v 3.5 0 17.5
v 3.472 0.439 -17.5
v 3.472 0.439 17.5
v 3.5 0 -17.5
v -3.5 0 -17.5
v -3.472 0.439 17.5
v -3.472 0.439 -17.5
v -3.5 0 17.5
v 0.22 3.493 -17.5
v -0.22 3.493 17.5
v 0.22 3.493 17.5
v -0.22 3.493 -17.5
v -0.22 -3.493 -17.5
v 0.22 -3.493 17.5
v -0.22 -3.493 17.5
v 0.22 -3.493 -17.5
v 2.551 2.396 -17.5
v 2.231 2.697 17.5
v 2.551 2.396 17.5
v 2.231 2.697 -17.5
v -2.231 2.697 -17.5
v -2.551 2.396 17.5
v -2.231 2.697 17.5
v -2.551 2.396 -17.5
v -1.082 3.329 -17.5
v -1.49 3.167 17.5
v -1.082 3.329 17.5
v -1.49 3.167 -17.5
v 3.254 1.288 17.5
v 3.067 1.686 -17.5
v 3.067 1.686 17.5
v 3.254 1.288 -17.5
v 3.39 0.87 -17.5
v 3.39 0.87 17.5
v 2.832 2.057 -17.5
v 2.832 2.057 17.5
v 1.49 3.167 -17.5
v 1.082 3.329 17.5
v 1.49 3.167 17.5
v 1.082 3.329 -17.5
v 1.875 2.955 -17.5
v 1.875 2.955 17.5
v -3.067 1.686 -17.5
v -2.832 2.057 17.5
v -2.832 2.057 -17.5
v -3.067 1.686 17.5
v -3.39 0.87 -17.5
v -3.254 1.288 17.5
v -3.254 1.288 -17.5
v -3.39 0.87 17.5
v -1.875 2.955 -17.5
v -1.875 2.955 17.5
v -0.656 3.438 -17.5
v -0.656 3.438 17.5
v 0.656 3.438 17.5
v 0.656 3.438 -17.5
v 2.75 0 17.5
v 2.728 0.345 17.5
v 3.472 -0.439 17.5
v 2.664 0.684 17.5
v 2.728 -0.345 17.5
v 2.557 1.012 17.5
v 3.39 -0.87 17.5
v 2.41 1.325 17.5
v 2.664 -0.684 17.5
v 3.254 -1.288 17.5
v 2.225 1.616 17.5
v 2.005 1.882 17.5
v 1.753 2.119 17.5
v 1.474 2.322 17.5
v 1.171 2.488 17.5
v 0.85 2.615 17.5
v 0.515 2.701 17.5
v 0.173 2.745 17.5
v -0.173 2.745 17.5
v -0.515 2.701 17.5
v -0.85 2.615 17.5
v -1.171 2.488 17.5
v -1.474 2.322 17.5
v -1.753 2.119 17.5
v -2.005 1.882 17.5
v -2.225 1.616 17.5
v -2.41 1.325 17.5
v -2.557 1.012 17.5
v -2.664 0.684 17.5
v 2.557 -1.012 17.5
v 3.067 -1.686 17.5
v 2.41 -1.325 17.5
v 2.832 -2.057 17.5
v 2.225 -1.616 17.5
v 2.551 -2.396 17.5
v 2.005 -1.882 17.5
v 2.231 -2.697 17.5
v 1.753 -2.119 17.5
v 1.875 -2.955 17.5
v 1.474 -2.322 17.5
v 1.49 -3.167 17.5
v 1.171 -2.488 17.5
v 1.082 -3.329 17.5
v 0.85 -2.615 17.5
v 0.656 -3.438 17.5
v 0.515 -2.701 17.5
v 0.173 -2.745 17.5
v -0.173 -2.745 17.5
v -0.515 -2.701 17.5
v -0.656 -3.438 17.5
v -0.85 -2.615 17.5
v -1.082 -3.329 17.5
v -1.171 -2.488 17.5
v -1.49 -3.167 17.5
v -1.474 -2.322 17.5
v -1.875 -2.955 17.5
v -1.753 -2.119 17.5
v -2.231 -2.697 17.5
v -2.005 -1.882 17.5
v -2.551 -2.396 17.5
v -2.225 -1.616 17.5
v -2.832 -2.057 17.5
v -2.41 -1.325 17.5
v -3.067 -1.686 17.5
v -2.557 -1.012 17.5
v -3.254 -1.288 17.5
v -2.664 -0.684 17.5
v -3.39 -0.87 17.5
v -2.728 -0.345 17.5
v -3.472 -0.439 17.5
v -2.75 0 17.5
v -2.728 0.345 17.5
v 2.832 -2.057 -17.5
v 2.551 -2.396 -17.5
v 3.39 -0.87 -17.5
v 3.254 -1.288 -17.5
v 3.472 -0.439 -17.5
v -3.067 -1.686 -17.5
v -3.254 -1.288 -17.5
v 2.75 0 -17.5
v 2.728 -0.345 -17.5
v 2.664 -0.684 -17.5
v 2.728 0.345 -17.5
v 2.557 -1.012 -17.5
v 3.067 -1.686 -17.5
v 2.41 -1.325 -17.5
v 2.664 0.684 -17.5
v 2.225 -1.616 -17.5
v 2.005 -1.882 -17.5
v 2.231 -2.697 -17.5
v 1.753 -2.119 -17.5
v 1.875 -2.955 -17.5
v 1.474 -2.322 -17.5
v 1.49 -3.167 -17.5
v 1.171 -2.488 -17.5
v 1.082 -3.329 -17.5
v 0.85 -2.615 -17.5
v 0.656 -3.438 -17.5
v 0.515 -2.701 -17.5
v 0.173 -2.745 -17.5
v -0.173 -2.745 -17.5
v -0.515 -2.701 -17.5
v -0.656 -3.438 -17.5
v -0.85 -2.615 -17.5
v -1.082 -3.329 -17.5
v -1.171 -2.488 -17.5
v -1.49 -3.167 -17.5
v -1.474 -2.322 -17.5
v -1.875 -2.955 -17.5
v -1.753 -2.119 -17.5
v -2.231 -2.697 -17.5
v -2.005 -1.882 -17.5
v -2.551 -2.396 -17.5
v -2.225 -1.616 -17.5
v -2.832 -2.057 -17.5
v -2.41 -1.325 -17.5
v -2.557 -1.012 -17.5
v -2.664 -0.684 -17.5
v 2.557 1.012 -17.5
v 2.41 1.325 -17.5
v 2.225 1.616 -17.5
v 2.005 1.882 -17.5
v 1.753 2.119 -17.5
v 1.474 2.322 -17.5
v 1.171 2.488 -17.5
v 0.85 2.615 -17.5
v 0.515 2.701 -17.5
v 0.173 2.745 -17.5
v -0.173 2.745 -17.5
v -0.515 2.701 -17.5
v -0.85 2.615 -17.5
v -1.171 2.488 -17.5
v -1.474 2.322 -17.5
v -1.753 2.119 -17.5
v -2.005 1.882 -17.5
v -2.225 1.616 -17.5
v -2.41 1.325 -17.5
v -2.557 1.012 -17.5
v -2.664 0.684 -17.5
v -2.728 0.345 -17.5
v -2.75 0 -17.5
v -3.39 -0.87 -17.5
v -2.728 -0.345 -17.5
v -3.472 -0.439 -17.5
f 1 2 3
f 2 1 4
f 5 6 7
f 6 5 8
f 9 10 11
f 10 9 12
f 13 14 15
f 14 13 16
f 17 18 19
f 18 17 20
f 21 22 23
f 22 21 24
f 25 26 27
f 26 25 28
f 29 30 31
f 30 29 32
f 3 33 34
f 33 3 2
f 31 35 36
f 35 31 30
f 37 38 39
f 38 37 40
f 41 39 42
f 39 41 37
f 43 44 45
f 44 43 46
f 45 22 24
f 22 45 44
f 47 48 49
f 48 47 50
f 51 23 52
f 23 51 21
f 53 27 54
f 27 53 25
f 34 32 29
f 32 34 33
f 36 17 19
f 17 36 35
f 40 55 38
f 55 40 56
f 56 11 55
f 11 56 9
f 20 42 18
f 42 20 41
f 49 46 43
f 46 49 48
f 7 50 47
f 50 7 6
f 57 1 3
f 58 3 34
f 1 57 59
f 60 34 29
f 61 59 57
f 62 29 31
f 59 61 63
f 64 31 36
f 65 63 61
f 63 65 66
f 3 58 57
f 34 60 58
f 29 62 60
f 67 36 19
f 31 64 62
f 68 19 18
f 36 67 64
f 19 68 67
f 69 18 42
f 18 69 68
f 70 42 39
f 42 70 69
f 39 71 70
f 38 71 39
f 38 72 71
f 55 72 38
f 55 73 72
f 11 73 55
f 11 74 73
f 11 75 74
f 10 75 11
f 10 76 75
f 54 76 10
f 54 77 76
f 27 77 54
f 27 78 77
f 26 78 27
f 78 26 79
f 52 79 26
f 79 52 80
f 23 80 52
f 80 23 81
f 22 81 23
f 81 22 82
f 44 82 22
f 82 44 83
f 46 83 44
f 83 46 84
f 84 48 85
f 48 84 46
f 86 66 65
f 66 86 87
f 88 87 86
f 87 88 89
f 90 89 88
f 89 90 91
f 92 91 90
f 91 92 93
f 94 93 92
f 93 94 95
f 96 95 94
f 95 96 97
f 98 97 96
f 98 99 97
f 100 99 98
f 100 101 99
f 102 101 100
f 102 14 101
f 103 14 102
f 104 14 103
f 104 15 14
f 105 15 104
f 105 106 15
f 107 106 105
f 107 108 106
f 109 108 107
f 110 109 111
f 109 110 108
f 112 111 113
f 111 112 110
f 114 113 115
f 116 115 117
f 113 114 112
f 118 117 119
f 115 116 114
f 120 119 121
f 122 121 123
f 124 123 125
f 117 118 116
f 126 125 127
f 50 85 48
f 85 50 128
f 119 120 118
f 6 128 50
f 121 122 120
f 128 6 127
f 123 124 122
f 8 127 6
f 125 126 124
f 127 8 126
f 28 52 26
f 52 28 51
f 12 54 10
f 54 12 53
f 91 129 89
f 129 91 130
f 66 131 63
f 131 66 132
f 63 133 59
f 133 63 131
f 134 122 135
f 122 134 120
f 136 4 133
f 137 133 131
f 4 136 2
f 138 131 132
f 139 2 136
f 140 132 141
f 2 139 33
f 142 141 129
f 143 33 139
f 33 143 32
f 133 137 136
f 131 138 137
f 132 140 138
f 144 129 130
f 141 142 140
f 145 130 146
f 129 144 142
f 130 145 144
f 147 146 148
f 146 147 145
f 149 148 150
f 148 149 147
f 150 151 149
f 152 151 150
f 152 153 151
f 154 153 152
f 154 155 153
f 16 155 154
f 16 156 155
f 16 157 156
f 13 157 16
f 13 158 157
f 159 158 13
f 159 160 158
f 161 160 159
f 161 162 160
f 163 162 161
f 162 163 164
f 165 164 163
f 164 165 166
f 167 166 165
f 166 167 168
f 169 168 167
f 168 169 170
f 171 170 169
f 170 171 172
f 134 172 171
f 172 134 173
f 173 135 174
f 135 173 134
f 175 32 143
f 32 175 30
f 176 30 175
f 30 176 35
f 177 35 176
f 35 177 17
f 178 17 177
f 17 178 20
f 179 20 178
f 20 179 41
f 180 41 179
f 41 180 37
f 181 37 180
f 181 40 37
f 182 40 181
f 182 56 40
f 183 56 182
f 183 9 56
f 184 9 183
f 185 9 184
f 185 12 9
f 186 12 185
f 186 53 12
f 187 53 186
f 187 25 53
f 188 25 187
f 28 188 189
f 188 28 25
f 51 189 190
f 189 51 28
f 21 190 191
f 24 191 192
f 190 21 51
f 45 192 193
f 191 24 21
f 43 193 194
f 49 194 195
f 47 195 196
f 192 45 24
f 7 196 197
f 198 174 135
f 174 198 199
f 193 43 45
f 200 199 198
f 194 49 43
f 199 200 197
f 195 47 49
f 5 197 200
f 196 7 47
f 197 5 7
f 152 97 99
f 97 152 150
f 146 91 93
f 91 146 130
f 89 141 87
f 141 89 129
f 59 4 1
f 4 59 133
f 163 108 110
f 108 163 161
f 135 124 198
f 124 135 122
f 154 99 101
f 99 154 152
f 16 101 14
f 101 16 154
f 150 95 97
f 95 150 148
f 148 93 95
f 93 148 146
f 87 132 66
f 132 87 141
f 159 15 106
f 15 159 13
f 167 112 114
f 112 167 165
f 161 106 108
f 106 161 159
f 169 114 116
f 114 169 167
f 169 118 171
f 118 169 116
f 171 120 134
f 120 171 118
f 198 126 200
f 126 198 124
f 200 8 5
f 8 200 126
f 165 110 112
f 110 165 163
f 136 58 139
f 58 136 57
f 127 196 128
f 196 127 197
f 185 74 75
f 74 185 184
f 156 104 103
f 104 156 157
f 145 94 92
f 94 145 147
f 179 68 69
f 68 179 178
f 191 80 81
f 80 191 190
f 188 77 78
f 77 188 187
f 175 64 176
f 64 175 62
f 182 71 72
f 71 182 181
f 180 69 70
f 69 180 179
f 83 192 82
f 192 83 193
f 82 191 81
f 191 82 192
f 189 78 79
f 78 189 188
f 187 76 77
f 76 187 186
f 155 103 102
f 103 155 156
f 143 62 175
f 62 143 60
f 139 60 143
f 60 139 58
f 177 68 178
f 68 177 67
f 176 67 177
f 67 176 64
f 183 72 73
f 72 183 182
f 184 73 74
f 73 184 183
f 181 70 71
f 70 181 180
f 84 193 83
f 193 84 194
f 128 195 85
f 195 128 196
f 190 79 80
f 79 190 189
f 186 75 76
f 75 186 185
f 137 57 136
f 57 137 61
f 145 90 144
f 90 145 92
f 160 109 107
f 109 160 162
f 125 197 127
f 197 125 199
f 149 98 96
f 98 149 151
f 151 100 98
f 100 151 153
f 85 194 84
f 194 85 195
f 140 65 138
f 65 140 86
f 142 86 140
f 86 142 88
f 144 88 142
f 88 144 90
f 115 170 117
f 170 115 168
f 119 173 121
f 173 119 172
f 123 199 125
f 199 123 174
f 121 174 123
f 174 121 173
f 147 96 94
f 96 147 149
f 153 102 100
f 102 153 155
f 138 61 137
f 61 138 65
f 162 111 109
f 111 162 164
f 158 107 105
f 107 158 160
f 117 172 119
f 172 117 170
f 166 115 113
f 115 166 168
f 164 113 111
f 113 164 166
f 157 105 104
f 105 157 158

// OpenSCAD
$fn = 50;


difference() {
	union() {
		translate(v = [0, 0, -17.5000000000]) {
			cylinder(h = 35, r = 3.5000000000);
		}
	}
	union() {
		translate(v = [0, 0, -100.0000000000]) {
			cylinder(h = 200, r = 2.7500000000);
		}
	}
}
